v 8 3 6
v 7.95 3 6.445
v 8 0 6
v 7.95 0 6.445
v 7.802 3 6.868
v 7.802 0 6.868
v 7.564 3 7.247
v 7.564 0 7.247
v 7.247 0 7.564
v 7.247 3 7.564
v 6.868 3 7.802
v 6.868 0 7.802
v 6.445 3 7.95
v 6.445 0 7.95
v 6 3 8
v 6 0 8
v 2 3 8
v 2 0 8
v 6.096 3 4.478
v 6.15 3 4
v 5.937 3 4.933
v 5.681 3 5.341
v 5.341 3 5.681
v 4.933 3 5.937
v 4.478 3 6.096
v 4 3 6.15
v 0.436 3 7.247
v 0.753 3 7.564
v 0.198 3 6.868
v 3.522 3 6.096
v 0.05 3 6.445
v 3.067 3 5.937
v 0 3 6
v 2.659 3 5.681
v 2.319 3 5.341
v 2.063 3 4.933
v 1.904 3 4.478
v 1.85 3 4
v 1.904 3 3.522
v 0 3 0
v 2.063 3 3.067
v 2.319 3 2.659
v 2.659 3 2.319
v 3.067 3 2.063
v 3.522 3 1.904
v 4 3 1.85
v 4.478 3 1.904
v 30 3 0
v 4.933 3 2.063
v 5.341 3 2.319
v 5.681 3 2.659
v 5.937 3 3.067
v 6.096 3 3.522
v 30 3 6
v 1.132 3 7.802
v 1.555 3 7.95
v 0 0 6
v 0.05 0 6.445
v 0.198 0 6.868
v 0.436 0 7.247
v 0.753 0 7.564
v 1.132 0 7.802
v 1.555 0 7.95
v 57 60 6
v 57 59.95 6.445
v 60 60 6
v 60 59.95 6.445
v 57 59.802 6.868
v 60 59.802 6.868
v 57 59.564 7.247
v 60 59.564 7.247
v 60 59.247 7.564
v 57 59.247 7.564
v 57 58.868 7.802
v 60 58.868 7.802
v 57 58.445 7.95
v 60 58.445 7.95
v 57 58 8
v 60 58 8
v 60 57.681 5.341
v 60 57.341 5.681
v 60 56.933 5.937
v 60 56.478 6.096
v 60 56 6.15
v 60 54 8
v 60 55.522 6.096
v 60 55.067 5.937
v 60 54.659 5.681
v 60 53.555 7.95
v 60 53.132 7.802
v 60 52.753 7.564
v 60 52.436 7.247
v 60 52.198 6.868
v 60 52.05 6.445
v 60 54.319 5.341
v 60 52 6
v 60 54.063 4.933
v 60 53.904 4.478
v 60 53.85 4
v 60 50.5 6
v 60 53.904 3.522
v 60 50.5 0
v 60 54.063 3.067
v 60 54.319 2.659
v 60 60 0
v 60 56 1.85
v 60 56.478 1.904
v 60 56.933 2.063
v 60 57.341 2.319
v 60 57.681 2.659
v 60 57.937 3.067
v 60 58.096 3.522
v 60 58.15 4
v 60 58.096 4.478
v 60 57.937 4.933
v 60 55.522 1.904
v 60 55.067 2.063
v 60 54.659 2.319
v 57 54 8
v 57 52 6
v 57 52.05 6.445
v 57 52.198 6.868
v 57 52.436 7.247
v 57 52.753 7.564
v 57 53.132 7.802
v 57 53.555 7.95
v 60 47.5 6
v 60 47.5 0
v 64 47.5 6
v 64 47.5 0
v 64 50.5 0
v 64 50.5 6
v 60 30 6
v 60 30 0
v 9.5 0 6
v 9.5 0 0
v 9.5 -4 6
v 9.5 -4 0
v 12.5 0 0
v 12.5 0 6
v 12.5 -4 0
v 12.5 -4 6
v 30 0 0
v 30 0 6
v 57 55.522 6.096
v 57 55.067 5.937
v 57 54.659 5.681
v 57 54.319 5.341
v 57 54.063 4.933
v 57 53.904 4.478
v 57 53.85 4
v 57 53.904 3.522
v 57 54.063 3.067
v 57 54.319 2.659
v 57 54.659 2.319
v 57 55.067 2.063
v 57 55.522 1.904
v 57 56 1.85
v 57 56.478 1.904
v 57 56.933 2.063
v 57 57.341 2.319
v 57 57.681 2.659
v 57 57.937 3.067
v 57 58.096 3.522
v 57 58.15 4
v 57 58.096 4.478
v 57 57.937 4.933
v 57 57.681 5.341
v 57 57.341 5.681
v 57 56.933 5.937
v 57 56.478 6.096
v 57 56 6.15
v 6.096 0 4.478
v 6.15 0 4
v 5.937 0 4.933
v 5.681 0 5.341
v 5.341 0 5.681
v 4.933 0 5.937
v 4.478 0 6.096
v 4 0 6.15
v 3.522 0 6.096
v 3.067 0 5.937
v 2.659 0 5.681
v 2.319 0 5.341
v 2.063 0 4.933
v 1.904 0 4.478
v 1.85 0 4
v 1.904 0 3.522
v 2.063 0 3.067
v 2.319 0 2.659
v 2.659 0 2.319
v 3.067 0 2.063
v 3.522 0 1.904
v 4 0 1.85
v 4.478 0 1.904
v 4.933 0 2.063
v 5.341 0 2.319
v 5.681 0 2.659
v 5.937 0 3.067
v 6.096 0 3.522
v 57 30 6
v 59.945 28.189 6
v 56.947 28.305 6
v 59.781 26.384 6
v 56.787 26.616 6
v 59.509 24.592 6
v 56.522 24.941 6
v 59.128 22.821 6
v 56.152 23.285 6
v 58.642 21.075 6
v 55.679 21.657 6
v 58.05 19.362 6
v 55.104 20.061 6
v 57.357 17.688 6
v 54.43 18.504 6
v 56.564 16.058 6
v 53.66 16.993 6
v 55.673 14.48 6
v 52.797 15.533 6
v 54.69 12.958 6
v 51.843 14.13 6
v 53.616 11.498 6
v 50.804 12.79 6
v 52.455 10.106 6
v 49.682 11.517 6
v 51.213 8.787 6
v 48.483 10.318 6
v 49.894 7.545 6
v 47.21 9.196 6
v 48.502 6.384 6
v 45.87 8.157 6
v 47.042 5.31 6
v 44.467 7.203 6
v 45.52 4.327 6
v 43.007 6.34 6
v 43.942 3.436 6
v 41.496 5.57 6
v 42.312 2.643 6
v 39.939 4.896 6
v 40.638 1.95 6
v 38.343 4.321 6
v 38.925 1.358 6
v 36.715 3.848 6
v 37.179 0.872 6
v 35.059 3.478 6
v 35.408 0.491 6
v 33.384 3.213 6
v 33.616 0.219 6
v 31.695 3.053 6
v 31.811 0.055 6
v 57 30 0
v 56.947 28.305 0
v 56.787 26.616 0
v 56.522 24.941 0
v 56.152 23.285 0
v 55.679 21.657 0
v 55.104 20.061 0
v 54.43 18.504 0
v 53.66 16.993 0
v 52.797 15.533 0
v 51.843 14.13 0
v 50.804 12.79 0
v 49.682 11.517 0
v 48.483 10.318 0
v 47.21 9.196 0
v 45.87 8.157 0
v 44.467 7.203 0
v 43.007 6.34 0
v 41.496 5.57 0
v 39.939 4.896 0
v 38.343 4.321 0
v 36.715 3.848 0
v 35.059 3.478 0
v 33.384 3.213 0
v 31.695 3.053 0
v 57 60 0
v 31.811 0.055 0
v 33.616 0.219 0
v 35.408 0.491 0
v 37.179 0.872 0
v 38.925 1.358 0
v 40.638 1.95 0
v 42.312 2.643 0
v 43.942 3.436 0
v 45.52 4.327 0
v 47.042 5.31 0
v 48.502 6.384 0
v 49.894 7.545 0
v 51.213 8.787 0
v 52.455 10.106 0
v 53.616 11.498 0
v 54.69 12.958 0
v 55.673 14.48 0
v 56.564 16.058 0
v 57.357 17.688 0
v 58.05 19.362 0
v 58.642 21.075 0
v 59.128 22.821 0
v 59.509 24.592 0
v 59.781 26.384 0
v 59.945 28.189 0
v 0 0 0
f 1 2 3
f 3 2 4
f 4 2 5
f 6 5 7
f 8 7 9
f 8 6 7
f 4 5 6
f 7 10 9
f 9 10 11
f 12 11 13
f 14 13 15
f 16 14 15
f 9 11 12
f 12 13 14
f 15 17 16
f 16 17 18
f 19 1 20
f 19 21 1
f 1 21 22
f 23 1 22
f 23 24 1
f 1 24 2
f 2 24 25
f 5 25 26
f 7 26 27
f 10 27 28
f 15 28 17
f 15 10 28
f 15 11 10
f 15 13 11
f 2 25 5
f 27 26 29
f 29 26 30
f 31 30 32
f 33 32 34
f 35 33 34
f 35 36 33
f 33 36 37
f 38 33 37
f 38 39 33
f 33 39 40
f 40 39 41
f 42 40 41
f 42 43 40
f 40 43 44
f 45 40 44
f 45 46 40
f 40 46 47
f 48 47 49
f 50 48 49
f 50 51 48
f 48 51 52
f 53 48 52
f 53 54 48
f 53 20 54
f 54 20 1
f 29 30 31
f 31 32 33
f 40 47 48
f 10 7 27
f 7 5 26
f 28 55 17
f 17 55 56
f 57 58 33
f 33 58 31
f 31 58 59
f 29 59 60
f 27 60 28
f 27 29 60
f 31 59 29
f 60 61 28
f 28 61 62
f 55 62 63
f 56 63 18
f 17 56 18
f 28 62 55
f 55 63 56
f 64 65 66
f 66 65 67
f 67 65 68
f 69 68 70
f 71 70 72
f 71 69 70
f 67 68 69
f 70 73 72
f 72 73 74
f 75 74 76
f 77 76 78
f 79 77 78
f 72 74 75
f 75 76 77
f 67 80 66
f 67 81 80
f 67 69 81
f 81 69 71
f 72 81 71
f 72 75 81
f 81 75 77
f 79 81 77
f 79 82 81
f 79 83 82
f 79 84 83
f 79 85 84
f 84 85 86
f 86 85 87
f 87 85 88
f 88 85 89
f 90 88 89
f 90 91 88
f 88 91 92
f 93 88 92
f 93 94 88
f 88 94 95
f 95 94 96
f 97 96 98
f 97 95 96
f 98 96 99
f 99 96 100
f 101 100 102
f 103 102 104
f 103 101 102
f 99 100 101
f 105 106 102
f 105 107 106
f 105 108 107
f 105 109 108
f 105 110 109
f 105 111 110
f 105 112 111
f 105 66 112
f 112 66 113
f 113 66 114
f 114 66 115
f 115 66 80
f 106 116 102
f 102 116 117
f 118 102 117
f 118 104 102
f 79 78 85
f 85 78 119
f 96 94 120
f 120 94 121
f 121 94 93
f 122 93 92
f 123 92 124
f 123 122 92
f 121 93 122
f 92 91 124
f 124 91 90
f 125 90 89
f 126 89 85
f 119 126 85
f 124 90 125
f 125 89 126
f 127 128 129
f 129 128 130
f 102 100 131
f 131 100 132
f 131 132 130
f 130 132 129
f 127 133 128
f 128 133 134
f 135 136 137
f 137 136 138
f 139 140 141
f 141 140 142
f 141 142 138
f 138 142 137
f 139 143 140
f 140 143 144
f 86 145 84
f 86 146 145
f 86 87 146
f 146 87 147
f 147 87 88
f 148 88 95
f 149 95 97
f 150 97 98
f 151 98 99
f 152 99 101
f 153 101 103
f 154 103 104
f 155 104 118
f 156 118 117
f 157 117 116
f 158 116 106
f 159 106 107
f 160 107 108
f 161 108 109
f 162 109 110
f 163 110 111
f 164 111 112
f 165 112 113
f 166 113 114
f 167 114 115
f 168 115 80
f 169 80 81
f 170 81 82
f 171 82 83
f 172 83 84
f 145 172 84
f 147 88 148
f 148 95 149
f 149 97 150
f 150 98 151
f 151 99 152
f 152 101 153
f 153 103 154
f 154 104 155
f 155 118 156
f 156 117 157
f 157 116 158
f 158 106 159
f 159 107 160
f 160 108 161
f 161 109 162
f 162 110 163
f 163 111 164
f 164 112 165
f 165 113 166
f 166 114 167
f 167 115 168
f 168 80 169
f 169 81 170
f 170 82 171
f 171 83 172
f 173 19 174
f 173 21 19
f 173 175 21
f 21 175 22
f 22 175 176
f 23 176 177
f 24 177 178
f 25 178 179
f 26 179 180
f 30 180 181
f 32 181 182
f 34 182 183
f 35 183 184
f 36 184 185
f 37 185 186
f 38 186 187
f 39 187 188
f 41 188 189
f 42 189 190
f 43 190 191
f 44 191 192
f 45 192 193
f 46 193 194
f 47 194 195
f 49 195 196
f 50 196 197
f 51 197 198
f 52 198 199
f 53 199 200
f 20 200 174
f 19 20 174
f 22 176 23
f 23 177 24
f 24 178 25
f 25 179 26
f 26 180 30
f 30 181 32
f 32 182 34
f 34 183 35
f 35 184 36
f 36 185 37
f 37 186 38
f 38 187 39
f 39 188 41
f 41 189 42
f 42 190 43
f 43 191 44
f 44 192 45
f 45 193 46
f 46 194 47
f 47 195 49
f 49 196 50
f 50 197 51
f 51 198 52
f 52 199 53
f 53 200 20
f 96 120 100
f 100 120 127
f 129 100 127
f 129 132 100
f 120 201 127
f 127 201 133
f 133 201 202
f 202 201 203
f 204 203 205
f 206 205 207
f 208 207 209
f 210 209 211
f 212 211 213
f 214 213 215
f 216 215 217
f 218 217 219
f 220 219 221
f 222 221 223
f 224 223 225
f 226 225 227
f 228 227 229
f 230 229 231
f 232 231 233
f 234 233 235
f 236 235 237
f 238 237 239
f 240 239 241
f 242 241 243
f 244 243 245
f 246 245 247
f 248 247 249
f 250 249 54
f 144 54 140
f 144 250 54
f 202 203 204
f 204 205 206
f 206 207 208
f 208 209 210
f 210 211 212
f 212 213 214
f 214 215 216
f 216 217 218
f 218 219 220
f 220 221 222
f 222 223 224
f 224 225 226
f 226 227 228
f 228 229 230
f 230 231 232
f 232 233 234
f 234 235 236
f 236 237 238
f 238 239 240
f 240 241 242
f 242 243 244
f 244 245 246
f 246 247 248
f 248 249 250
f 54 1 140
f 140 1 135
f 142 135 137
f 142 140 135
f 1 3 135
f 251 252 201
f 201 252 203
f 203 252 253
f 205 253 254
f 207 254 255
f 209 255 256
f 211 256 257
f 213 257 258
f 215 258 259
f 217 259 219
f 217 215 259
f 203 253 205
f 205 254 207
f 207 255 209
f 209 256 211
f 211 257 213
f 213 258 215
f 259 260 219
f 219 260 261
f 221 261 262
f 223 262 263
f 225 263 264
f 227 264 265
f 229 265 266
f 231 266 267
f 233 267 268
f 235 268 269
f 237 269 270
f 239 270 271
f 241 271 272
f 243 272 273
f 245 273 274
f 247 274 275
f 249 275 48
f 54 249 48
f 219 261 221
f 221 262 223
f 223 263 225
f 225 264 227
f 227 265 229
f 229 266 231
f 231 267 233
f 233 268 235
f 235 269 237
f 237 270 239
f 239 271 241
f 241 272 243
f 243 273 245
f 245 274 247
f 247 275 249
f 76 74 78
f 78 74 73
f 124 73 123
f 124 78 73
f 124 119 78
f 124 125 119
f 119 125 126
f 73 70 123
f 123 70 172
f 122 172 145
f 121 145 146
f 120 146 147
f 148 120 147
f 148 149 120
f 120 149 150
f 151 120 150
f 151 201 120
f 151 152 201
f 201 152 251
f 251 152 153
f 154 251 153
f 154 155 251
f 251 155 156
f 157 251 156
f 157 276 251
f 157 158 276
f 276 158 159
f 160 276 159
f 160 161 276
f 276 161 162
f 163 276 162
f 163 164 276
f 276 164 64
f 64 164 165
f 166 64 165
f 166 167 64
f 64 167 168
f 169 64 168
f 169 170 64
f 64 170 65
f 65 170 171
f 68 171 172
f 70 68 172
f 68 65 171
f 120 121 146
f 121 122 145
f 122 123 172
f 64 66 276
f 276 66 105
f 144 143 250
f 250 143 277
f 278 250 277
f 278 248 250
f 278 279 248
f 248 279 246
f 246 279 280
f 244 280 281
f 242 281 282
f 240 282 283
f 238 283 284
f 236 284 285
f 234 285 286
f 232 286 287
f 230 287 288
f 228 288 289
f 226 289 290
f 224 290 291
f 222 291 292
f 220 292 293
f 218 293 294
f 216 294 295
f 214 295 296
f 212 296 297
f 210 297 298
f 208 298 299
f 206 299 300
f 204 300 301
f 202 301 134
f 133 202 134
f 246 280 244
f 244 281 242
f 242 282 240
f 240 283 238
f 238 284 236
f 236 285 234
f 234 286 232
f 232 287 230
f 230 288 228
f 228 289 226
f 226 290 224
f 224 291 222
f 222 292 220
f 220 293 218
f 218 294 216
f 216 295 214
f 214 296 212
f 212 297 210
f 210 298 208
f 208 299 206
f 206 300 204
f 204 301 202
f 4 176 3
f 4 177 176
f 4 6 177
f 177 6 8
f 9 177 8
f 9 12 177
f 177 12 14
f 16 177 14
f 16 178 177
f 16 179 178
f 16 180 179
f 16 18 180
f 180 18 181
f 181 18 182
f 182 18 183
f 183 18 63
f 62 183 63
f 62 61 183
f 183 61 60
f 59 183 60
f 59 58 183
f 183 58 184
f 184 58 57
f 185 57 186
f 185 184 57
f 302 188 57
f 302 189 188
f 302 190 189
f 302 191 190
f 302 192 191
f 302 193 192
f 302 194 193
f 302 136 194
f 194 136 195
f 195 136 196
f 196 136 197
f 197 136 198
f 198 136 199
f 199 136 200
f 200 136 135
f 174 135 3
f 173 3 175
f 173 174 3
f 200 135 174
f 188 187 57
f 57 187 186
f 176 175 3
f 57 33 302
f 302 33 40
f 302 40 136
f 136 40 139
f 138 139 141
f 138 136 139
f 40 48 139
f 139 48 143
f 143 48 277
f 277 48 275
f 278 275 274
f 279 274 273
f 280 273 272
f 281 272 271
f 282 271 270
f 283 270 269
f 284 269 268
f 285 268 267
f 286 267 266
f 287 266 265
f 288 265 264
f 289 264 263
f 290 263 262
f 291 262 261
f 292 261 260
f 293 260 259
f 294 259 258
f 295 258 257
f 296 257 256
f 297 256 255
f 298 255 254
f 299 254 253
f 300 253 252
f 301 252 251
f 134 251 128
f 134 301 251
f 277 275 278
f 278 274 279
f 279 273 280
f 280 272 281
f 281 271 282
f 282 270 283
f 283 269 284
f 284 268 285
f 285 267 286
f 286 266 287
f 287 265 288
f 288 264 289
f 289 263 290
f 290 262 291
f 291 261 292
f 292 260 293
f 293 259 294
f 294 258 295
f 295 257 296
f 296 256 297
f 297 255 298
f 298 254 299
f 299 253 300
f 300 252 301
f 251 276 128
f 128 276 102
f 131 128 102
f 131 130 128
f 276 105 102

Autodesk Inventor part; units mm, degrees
ref_plane "YZ Plane" through (0, 0, 0) normal (1, 0, 0) x (0, 1, 0)
ref_plane "XZ Plane" through (0, 0, 0) normal (0, 1, 0) x (-1, 0, 0)
ref_plane "XY Plane" through (0, 0, 0) normal (0, 0, 1) x (1, 0, 0)
sketch "Sketch1" plane through (0, 0, 0) normal (0, 0, 1) x (1, 0, 0)
  line L0 (0, 0) -> (60, 0) construction
  line L1 (60, 0) -> (60, 60) construction
  line L2 (60, 60) -> (0, 60) construction
  line L3 (0, 3) -> (0, 0)
  line L4 (57, 60) -> (60, 60)
  line L5 (60, 60) -> (60, 30)
  line L6 (60, 0) -> (30, 0) construction
  line L7 (30, 0) -> (30, 30) construction
  line L8 (30, 30) -> (60, 30) construction
  line L9 (60, 30) -> (60, 0) construction
  arc A0 (30, 3) -> (57, 30) centre (30, 30) ccw
  line L10 (30, 3) -> (0, 3)
  line L11 (0, 0) -> (30, 0)
  line L12 (57, 30) -> (57, 60)
  line L13 (0, 60) -> (0, 30) construction
  line L14 (0, 3) -> (0, 0) construction
  arc A1 (30, 0) -> (60, 30) centre (30, 30) ccw
  arc A2 (30, 60) -> (0, 30) centre (30, 30) ccw
  dimension "d0" = 60
  dimension "d1" = 60
  dimension "d3" = 3
  dimension "d6" = 30
extrude "Extrusion2" add sketch "Sketch1" along normal blind 6
sketch "Sketch2" plane through (0, 0, 6) normal (0, 0, 1) x (1, 0, 0)
  line L0 (30, 3) -> (0, 3) projected
  line L1 (0, 0) -> (8, 0)
  line L2 (8, 0) -> (8, 3)
  line L3 (8, 3) -> (0, 3)
  line L4 (0, 3) -> (0, 0)
  dimension "d10" = 8
extrude "Extrusion3" add sketch "Sketch2" along normal blind 2
sketch "Sketch3" plane through (0, 3, 0) normal (0, 1, 0) x (1, 0, 0)
  circle A0 centre (4, -4) radius 2.15
  dimension "d13" = 4.3
extrude "Extrusion4" cut sketch "Sketch3" against normal through all
sketch "Sketch4" plane through (0, 0, 6) normal (0, 0, 1) x (1, 0, 0)
  line L0 (60, 30) -> (60, 60) projected
  line L1 (57, 60) -> (60, 60)
  line L2 (60, 60) -> (60, 52)
  line L3 (60, 52) -> (57, 52)
  line L4 (57, 52) -> (57, 60)
  point P0 (0, 0)
  dimension "d16" = 8
extrude "Extrusion5" add sketch "Sketch4" along normal blind 2
sketch "Sketch5" plane through (57, 30, 0) normal (-1, 0, 0) x (0, 0, 1)
  circle A0 centre (4, 26) radius 2.15
  point P0 (0, -30)
  dimension "d19" = 4.3
extrude "Extrusion6" cut sketch "Sketch5" against normal through all
sketch "Sketch6" plane through (0, 0, 0) normal (0, -1, 0) x (1, 0, 0)
  line L0 (30, 0) -> (0, 0) projected
  line L1 (8, 6) -> (30, 6) projected
  line L2 (8, 6) -> (8, 8) projected
  line L3 (0, 0) -> (0, 8) projected
  line L4 (9.5, 7.1237) -> (9.5, -0.5969) construction
  line L5 (9.5, 6) -> (12.5, 6)
  line L6 (12.5, 6) -> (12.5, 0)
  line L7 (12.5, 0) -> (9.5, 0)
  line L8 (9.5, 0) -> (9.5, 6)
  dimension "d23" = 1.5
  dimension "d24" = 3
extrude "Extrusion7" add sketch "Sketch6" along normal blind 4
sketch "Sketch7" plane through (60, 30, 0) normal (1, 0, 0) x (0, 0, -1)
  line L0 (0, 30) -> (0, 0) projected
  line L1 (-6, 22) -> (-8, 22) projected
  line L2 (-6, 0) -> (-6, 22) projected
  line L3 (-6, 20.5) -> (0, 20.5)
  line L4 (0, 20.5) -> (0, 17.5)
  line L5 (0, 17.5) -> (-6, 17.5)
  line L6 (-6, 17.5) -> (-6, 20.5)
  point P0 (0, -30)
  dimension "d27" = 3
  dimension "d28" = 1.5
extrude "Extrusion8" add sketch "Sketch7" along normal blind 4
fillet "Fillet1" radius 2 4 edges at (58.5, 52, 8) (58.5, 60, 8) (0, 1.5, 8) (8, 1.5, 8)
properties part number "BackNetHookLeft"
